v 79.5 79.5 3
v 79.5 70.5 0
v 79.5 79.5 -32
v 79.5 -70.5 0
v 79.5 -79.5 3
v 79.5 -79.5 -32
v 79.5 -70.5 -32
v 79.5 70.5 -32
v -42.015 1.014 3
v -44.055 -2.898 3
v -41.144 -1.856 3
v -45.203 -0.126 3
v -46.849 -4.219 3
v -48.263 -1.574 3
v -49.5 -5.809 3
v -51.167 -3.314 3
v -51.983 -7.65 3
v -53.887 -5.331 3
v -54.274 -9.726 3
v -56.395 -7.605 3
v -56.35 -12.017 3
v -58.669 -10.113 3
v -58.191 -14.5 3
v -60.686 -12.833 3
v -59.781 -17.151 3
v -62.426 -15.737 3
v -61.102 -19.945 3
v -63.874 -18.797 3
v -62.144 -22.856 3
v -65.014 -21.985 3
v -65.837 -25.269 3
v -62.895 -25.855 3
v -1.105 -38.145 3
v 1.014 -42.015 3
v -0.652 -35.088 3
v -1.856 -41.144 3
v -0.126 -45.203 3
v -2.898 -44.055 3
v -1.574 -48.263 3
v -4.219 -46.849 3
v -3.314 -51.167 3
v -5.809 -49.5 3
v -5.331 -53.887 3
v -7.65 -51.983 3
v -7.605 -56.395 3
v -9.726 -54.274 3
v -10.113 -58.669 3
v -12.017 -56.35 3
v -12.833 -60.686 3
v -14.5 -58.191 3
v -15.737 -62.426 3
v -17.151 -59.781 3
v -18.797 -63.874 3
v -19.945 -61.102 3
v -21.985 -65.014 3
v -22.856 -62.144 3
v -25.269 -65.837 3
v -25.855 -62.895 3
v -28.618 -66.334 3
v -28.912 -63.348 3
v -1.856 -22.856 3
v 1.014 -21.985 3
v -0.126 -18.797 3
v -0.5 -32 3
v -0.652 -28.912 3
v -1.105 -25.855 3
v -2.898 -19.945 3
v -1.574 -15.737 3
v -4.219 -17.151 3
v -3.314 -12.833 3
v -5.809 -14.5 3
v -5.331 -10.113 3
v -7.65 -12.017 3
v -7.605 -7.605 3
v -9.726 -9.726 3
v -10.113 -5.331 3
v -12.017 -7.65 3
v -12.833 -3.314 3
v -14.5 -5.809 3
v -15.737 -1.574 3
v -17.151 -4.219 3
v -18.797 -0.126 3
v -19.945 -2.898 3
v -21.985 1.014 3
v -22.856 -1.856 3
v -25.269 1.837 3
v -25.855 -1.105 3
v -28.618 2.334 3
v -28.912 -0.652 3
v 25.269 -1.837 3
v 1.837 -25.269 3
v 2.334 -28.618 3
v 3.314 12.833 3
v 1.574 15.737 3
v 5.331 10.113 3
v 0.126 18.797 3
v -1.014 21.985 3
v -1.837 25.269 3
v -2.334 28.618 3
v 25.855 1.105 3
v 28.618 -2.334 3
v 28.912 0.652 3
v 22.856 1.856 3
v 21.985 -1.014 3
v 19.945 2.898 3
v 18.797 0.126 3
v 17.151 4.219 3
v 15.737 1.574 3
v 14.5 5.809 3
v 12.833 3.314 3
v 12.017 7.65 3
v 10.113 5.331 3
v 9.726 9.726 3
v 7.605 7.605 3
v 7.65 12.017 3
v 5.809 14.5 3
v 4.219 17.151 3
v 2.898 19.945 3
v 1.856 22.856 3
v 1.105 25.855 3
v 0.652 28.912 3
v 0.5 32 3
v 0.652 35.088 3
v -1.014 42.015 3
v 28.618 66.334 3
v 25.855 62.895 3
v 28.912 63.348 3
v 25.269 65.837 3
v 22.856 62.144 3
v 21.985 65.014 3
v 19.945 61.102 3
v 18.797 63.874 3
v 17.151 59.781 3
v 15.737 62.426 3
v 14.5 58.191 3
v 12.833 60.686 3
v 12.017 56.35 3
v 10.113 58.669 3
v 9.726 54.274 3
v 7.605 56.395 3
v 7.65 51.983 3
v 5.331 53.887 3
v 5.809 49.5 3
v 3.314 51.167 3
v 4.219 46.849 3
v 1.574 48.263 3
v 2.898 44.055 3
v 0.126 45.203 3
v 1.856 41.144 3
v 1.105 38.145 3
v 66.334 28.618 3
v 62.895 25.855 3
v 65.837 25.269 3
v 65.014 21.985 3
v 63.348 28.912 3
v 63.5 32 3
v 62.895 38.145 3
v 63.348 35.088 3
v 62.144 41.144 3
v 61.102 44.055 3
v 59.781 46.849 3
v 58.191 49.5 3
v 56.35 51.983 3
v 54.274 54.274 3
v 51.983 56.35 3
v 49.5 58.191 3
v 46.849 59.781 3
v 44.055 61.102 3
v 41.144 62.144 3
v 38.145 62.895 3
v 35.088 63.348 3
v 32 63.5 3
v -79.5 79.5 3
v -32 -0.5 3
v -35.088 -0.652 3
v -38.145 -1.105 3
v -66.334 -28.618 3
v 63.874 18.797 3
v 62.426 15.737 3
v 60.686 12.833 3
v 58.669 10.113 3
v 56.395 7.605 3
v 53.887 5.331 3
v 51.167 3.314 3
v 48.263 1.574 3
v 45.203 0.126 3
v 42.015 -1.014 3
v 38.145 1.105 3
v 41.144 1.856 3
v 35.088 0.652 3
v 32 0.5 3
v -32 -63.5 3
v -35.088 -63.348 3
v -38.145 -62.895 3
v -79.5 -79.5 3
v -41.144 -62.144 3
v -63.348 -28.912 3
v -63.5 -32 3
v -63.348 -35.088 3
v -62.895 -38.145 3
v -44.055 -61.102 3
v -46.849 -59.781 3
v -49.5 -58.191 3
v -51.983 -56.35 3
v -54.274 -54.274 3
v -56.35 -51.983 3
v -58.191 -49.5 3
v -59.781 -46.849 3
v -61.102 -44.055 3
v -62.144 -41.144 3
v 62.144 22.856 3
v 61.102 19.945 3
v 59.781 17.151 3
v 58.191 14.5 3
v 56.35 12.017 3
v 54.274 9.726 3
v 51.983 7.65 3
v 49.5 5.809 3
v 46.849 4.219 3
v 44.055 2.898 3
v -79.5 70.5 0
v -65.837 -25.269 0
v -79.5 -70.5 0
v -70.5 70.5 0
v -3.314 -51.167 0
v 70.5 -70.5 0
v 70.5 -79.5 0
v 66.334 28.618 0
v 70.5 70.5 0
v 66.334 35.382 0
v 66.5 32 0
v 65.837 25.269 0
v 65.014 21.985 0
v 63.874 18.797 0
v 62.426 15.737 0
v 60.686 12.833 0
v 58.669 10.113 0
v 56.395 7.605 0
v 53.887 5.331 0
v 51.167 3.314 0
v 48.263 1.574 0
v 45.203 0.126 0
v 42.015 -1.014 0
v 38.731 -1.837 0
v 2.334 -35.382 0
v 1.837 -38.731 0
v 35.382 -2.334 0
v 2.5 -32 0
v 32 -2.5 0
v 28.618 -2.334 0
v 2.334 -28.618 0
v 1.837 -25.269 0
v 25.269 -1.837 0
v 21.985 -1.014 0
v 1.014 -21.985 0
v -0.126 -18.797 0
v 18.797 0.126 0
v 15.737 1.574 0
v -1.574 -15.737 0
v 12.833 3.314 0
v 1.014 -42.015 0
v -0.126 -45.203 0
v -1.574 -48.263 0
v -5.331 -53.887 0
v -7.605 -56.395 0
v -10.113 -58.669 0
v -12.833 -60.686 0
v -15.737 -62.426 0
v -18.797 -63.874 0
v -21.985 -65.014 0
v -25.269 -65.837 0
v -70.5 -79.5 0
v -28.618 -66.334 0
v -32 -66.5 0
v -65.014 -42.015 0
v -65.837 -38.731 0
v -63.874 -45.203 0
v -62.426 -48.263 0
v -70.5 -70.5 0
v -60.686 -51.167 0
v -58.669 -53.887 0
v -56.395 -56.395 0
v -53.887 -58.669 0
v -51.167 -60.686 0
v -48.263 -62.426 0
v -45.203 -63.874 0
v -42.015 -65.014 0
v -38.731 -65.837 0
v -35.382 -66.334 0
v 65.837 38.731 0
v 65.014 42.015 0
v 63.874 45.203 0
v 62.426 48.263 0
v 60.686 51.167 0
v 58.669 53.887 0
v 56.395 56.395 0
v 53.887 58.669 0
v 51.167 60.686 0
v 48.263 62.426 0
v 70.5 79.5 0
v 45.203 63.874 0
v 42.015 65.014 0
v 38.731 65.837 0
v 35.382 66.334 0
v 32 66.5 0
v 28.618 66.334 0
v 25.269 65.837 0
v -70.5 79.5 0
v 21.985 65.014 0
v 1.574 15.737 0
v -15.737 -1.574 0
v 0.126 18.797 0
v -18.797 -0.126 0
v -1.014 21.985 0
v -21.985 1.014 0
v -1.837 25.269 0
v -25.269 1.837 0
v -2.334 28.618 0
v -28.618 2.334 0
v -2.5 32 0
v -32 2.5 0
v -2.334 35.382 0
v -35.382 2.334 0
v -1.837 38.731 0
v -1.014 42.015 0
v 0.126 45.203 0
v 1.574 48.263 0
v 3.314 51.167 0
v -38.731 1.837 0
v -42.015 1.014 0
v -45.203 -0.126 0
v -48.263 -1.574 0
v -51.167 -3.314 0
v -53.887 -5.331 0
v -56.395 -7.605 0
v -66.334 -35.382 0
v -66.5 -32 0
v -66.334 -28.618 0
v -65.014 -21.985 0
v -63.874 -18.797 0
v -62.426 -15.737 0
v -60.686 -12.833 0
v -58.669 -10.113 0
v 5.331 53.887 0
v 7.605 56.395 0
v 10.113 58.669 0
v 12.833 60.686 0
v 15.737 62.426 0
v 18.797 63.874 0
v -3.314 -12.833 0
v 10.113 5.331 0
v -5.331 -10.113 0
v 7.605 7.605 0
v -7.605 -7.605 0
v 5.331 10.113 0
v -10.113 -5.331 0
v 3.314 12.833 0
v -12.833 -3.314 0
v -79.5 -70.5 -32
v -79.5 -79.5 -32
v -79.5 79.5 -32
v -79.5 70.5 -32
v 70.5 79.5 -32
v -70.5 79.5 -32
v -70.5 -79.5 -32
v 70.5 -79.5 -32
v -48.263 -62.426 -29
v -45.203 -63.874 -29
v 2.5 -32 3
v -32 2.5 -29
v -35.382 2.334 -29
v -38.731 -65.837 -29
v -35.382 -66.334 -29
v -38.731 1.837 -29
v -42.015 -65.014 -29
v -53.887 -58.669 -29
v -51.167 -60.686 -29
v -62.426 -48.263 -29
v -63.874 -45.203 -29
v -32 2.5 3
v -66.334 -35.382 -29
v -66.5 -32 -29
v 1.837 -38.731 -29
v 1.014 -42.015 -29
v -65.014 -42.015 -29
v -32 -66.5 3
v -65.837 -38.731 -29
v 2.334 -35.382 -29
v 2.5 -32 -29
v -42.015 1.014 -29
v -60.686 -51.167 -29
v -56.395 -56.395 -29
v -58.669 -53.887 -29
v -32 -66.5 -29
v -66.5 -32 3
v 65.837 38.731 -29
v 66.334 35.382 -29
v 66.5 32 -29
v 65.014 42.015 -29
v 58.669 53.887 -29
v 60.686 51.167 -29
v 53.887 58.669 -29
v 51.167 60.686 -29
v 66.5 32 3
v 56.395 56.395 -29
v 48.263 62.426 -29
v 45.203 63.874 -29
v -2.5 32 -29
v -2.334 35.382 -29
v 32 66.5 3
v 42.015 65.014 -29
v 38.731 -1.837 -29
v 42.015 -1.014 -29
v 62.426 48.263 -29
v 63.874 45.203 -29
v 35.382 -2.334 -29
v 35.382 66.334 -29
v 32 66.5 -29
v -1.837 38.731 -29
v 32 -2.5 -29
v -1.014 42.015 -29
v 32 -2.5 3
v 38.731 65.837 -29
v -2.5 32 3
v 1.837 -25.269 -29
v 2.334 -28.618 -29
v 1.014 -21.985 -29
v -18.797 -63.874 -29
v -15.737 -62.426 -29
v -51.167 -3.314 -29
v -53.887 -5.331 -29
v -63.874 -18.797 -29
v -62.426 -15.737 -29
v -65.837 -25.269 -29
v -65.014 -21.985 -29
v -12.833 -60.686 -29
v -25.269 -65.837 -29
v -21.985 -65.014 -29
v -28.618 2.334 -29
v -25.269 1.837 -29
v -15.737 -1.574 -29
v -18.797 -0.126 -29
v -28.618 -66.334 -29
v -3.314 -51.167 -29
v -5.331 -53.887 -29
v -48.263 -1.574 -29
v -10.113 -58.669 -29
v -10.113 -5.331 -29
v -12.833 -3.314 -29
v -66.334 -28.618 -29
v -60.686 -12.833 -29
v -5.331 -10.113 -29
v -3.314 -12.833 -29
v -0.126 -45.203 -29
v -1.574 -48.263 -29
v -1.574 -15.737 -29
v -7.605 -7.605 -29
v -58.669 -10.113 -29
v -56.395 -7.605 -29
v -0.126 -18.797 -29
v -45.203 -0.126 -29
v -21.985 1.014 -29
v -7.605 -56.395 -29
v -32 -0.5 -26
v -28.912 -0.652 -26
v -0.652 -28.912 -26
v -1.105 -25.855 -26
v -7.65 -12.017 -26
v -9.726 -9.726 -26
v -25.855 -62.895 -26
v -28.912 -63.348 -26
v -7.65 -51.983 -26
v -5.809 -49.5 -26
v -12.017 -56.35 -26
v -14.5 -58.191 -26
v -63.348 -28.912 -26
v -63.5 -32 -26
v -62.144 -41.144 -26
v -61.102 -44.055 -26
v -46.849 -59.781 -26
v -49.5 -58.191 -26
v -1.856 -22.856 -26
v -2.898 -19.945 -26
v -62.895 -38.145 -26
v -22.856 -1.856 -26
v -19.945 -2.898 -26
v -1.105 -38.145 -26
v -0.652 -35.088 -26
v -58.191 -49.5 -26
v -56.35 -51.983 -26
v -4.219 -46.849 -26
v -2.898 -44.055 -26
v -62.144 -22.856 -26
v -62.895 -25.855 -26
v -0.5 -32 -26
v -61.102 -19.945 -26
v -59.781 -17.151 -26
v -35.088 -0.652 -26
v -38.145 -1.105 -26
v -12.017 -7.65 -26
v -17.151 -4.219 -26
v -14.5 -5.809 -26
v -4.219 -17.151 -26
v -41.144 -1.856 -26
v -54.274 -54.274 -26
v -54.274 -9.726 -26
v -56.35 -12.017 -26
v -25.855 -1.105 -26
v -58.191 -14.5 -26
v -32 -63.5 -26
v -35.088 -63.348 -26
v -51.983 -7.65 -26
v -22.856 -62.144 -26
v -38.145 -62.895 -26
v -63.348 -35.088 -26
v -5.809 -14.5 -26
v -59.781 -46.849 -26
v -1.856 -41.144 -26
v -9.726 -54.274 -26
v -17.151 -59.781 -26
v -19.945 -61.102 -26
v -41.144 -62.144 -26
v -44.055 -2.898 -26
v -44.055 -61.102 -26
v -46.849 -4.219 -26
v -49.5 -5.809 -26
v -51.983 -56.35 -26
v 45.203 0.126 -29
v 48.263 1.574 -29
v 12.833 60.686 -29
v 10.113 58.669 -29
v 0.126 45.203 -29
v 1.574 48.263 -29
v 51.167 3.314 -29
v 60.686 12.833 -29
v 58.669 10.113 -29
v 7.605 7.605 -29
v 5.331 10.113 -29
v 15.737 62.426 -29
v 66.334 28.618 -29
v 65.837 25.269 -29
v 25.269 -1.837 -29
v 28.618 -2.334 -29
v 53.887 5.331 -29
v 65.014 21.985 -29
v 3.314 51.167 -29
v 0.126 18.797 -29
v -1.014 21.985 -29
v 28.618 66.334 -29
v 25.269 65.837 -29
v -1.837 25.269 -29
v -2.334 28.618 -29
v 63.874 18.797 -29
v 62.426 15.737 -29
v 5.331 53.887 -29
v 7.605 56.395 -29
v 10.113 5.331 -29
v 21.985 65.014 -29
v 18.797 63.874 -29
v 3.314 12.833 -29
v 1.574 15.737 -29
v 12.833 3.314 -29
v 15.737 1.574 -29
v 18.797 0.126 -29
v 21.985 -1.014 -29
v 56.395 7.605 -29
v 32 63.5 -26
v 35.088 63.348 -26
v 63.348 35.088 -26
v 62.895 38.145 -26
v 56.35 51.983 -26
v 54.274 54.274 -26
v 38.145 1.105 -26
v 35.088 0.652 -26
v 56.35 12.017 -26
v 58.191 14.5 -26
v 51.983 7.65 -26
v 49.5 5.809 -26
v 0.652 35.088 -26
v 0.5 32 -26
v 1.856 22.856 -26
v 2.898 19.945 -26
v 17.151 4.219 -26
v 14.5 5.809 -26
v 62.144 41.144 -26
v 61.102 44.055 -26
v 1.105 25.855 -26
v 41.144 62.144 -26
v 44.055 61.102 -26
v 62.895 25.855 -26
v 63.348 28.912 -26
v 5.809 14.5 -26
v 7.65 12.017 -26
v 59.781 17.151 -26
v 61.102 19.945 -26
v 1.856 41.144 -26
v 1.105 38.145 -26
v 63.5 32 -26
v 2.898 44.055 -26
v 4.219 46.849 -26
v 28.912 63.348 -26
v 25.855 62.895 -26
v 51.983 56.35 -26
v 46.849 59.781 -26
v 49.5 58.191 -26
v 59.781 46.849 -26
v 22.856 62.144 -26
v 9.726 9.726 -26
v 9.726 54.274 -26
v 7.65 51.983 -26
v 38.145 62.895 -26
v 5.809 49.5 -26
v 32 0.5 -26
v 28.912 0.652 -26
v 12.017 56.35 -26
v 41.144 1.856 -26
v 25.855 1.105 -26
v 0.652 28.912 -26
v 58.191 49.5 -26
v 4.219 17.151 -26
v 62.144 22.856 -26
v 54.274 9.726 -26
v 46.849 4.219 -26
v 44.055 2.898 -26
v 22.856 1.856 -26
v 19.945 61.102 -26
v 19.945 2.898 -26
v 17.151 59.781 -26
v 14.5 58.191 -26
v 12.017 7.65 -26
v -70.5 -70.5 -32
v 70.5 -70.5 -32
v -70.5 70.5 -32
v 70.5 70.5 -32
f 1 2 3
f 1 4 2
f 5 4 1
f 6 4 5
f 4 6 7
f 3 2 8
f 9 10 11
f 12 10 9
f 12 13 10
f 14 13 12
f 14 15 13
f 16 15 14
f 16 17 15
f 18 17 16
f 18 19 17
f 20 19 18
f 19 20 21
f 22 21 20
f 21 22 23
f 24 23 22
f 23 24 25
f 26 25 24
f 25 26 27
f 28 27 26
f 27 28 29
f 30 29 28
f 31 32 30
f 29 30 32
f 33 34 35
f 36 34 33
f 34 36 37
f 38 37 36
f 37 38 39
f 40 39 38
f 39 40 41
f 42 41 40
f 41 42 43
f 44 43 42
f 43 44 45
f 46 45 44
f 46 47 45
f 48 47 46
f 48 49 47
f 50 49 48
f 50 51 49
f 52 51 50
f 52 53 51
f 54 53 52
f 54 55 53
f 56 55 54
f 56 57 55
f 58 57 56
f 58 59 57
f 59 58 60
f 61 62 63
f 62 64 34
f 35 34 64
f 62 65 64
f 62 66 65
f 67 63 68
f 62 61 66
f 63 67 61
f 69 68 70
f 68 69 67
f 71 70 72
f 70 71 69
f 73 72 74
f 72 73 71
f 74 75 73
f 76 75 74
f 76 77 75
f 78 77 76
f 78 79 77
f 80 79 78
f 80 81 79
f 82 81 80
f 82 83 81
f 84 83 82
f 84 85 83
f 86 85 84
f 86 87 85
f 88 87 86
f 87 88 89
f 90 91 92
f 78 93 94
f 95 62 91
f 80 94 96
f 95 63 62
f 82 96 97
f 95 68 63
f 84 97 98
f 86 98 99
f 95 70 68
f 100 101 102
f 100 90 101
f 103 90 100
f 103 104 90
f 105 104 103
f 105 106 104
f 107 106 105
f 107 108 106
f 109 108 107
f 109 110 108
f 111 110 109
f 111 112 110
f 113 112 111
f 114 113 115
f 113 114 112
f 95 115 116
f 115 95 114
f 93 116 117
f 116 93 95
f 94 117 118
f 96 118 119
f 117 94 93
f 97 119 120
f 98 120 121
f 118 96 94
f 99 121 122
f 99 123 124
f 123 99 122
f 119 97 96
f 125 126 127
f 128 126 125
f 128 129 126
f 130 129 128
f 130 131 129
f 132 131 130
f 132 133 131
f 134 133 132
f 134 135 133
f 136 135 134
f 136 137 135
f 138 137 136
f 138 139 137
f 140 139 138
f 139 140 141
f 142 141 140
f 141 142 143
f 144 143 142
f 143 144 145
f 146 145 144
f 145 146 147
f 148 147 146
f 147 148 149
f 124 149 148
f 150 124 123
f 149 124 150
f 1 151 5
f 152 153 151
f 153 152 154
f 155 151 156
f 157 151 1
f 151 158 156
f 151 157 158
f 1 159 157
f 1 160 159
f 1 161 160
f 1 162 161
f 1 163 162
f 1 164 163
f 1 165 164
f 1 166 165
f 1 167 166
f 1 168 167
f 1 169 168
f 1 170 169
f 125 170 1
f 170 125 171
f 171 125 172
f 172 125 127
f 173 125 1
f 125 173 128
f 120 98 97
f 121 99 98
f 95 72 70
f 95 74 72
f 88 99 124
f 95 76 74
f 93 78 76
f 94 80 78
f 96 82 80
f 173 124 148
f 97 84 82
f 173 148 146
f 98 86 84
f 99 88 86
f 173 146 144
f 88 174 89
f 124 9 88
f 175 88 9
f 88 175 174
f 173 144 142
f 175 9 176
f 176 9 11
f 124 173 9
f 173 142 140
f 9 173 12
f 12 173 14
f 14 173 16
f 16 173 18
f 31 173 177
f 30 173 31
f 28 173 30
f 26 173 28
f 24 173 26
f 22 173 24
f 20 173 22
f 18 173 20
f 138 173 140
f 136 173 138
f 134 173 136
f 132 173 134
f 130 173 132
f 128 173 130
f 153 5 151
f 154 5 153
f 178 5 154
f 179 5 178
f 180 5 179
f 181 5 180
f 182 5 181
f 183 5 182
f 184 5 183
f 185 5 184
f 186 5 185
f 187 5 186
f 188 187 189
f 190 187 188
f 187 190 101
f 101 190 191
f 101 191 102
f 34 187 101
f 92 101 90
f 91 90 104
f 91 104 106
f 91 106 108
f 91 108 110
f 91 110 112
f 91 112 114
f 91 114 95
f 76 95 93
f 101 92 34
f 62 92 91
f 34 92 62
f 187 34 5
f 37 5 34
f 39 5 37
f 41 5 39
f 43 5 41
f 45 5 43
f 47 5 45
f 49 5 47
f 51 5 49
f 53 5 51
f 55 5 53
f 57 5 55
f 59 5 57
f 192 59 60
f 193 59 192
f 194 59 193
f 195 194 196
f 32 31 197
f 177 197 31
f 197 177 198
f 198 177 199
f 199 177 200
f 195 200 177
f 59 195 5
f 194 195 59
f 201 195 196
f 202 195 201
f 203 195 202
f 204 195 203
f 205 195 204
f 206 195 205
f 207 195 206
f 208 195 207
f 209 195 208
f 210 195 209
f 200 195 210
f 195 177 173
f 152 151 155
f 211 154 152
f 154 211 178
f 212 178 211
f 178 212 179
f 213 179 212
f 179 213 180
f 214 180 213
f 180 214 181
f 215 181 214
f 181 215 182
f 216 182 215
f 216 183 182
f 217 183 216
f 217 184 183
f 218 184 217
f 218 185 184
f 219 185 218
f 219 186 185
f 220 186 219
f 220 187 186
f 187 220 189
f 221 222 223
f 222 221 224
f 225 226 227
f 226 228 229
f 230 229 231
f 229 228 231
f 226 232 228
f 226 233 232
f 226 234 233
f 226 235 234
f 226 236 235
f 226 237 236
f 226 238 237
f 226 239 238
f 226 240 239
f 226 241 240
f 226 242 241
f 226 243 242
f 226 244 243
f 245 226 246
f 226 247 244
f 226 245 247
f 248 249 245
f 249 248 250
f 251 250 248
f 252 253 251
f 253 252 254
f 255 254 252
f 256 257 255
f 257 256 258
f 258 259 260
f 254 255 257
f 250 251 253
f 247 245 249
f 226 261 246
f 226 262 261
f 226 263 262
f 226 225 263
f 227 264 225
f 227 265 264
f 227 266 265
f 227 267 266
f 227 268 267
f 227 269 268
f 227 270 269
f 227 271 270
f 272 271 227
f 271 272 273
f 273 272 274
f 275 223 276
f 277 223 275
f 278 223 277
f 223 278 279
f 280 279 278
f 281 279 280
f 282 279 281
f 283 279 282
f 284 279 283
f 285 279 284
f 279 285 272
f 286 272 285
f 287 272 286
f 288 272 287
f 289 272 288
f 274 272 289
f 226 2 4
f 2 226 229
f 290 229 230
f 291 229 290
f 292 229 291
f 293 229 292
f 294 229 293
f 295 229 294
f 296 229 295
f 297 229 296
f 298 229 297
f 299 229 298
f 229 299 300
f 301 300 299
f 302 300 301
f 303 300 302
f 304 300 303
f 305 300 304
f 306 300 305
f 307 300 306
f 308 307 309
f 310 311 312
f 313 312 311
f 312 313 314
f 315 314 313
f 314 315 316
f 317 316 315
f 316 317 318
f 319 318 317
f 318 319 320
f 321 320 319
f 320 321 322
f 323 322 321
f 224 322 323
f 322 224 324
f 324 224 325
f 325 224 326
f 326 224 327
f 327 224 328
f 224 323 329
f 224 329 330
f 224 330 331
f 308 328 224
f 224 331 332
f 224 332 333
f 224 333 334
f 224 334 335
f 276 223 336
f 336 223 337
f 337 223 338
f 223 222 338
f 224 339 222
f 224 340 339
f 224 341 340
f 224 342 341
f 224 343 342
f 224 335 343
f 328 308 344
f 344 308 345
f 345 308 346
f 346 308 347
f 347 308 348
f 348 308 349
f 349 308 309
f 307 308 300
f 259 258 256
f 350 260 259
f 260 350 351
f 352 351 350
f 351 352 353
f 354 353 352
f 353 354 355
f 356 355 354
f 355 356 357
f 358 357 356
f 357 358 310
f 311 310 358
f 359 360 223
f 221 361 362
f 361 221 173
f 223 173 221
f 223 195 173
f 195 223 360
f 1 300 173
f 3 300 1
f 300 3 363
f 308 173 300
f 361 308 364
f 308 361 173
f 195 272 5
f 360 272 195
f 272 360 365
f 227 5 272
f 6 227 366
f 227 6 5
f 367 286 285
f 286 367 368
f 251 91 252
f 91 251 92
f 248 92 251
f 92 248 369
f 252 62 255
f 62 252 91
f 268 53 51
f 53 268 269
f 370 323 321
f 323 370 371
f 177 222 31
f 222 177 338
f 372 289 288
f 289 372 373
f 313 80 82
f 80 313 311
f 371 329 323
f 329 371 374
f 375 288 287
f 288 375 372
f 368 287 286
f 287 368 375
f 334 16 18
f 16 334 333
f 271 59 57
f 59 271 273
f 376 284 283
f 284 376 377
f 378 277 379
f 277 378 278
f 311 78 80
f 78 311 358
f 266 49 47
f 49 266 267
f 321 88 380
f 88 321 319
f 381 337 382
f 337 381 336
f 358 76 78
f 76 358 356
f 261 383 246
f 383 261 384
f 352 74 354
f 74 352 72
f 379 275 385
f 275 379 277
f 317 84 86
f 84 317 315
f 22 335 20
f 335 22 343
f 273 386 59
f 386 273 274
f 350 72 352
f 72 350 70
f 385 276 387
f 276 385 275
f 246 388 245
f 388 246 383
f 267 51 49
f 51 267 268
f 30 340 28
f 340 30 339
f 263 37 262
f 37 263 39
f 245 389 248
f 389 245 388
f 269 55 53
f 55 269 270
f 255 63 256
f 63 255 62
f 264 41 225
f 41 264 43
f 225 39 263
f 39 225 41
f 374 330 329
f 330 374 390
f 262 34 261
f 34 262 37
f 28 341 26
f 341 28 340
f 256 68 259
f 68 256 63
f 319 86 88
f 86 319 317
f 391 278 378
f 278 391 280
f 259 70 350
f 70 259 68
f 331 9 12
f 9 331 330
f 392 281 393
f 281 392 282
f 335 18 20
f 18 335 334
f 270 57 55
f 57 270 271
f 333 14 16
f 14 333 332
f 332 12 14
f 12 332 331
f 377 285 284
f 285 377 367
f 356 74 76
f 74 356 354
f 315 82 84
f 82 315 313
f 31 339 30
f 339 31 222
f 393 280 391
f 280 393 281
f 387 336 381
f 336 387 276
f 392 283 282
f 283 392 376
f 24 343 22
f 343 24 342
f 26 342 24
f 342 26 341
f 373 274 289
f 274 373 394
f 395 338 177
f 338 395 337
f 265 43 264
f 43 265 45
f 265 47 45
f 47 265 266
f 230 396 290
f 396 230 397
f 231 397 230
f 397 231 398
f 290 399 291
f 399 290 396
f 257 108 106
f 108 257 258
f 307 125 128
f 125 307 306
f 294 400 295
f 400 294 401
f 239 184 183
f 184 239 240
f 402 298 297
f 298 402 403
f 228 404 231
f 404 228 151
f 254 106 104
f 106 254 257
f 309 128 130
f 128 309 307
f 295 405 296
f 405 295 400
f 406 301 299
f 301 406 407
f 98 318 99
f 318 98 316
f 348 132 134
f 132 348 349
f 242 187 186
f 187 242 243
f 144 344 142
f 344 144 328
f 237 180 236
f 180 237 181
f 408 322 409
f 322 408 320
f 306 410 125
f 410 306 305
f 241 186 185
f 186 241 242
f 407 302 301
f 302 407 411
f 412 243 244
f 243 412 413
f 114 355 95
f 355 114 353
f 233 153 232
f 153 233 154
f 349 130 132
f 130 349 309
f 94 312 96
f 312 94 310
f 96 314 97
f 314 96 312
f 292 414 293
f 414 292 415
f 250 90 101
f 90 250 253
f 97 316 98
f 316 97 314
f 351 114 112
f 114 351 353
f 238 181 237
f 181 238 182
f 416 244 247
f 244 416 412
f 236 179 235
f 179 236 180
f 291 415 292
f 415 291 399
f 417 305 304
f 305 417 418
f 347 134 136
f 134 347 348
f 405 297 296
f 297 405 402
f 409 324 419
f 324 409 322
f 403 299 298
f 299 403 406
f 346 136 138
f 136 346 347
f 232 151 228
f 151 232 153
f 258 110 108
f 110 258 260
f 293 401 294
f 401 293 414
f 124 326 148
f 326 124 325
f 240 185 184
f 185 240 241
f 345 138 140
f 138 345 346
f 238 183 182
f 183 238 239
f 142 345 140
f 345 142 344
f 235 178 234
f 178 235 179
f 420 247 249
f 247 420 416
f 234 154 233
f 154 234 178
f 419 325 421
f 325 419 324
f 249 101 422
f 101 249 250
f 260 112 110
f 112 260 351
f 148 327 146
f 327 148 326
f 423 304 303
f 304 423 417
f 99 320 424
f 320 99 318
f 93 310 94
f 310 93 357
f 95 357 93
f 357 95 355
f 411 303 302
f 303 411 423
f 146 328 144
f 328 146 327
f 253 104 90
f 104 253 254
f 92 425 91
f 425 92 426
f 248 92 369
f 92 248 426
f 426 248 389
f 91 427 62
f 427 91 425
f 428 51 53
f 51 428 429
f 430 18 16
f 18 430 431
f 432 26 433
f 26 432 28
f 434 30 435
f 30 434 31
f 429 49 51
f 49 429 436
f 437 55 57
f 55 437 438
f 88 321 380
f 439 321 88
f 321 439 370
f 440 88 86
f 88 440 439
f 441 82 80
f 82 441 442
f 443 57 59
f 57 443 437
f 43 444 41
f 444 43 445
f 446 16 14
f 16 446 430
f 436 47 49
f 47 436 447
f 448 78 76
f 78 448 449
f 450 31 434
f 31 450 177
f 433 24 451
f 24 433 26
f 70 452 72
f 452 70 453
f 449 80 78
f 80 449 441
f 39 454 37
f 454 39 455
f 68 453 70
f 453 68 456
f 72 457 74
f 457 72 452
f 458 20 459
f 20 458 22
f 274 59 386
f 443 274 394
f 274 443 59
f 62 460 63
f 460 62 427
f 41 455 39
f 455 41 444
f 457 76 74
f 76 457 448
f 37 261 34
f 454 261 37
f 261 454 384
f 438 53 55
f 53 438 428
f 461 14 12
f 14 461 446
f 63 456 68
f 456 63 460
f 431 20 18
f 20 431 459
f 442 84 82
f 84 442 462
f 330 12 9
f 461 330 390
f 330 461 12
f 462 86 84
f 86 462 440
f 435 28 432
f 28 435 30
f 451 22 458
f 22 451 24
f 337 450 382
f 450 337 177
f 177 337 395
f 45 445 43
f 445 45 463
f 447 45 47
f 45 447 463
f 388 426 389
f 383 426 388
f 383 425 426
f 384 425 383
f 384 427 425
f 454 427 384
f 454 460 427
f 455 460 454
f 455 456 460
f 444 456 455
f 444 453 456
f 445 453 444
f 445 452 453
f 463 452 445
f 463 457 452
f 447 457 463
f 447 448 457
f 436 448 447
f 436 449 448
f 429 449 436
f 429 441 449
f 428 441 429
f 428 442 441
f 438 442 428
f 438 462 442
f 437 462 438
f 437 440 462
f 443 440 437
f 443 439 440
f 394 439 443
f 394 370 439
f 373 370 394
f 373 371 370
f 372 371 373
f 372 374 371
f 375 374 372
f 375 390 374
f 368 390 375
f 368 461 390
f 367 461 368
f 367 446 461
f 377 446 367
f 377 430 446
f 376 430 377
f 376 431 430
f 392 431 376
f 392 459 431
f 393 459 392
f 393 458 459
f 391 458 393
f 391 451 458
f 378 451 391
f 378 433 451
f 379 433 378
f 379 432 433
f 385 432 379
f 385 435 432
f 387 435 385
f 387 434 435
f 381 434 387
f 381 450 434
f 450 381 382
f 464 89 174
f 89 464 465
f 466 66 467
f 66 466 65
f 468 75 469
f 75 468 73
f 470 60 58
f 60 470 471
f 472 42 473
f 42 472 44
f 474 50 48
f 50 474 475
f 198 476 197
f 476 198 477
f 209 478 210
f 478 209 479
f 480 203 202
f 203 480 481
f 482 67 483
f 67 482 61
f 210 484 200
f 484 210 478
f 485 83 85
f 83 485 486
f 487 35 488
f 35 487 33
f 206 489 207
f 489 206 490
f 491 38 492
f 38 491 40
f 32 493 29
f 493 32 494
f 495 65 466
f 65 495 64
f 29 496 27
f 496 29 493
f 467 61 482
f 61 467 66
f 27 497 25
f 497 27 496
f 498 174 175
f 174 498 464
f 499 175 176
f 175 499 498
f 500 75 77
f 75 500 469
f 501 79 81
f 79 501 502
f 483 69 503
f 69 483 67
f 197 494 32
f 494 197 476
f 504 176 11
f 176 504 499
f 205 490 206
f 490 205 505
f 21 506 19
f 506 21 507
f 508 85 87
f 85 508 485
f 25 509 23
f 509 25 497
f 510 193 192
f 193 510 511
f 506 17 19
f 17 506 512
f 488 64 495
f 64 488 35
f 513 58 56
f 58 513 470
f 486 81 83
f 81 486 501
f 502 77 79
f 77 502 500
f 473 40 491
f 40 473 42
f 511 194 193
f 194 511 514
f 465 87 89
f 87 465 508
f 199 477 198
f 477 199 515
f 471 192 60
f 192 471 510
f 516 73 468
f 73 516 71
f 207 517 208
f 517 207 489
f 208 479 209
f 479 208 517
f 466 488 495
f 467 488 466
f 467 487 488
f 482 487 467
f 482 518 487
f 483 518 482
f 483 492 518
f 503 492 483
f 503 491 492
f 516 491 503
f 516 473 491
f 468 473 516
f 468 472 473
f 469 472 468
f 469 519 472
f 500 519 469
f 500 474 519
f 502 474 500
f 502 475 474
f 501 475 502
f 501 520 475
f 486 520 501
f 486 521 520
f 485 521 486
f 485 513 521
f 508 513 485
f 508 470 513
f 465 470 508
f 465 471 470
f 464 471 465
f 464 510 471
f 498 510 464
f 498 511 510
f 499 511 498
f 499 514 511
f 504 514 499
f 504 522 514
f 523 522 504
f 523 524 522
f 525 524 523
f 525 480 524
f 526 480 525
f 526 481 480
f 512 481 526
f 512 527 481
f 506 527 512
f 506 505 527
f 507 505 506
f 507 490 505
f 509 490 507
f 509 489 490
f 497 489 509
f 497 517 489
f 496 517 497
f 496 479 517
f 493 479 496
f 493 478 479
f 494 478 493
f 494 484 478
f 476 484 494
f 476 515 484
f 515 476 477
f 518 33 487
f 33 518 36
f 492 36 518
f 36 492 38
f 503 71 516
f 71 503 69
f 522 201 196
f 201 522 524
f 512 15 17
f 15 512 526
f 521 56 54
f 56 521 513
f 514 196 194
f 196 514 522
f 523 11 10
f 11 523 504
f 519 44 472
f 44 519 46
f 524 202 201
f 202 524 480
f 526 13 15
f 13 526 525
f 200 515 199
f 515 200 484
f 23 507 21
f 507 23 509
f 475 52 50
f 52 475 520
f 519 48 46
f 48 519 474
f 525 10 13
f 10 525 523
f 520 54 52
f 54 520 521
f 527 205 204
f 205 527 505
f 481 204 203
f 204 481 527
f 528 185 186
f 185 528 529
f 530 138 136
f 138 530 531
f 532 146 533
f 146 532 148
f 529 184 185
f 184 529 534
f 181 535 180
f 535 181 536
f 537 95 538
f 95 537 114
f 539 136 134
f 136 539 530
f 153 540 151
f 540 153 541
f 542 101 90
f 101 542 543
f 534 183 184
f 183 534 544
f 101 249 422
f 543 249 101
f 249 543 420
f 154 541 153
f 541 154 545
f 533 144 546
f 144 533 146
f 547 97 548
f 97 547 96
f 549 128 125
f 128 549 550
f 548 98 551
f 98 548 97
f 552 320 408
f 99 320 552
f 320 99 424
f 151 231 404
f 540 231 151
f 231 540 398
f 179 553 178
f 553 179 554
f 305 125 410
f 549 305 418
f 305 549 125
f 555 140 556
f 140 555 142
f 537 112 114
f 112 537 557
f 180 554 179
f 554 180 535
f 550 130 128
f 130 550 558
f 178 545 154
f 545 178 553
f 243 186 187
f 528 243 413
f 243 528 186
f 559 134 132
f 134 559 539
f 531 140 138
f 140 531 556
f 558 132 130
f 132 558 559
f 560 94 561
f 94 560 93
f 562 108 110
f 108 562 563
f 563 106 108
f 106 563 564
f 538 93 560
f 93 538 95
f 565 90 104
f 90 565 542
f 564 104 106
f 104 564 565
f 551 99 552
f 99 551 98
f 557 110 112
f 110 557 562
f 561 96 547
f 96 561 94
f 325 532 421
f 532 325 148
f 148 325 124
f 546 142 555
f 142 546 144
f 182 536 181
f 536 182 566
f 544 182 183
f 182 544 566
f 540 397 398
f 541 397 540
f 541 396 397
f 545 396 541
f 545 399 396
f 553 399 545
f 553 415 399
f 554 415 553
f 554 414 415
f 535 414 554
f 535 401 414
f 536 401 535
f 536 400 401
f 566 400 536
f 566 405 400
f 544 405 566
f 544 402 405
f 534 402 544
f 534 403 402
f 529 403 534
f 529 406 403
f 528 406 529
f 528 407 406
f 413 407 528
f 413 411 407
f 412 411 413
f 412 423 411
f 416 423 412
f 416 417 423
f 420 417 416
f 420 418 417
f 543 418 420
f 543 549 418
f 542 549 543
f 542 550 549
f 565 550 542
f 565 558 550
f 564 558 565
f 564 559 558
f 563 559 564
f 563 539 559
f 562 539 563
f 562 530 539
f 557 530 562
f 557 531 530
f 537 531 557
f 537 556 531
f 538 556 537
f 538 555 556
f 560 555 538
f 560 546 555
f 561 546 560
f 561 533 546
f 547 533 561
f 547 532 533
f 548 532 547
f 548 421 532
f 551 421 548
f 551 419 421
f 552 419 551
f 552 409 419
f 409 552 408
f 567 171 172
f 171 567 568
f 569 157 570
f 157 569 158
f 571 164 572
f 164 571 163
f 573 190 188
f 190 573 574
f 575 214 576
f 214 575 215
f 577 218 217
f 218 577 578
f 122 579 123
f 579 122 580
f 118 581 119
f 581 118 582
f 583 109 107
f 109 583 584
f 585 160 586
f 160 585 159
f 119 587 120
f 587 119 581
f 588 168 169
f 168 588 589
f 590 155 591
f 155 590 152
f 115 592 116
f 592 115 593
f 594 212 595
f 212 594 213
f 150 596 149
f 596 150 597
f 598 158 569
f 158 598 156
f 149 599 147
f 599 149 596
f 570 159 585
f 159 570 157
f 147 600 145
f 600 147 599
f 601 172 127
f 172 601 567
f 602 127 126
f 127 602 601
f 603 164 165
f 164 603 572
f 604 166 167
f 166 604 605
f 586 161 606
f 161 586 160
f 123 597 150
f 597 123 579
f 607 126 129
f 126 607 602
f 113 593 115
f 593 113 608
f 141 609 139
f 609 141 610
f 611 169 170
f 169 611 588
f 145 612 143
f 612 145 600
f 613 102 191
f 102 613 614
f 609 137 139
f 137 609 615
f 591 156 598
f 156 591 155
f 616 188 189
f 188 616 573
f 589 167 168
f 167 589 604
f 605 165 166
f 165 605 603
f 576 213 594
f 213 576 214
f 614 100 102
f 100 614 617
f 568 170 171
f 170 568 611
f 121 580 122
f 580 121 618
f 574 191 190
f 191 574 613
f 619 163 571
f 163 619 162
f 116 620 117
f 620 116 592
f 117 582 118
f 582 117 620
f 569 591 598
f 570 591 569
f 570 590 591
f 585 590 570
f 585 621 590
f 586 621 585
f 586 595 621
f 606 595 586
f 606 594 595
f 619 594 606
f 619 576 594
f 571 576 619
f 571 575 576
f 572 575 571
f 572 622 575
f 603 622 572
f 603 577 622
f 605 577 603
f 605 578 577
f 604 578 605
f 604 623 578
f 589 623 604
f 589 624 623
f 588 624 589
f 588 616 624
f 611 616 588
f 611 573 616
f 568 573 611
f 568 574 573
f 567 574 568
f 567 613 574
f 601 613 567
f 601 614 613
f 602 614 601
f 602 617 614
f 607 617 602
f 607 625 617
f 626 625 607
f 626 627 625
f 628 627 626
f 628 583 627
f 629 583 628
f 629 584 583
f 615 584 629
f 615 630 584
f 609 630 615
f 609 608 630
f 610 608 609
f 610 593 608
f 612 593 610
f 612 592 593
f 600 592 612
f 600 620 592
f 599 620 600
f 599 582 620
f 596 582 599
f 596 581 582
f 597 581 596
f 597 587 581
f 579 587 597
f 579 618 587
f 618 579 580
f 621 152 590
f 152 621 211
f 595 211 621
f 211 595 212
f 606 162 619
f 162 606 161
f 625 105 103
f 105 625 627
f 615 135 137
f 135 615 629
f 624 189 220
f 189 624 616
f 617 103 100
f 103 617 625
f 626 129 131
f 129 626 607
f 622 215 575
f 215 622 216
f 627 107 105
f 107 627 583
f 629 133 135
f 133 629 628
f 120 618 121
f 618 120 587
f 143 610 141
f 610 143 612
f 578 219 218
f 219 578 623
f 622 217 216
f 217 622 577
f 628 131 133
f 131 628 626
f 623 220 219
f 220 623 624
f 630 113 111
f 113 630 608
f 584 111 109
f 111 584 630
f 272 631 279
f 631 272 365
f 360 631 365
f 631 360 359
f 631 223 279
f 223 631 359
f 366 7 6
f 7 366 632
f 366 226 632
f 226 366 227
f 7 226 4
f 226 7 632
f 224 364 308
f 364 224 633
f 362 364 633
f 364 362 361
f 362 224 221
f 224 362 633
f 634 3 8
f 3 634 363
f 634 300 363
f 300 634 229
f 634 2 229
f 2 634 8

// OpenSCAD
// ============================================================
// Parametrische Lochplatte mit Eckstützen und Zylindern
// ============================================================
// Aufbau:
//   z = +platten_dicke  → Oberkante Platte = Öffnung Zylinder
//   z =  0              → Unterkante Platte
//   z = -stuetzen_hoehe → Unterkante Stützen
// ============================================================

// --- Parameter (anpassbar) ---
laenge          =  159; // Länge der Grundplatte in mm
breite          =  159;   // Breite der Grundplatte in mm
stuetzen_hoehe  =   32;   // Höhe der Eckstützen in mm
bohrung_dm      =   63;   // Innendurchmesser der Zylinder in mm
zylinder_tiefe  =   32;   // Tiefe der Zylinder in mm (max = stuetzen_hoehe!)
mit_stuetzen    = true;  // true = Stützen an / false = Stützen aus

// --- Konstanten ---
platten_dicke   =  3;    // Dicke der Grundplatte in mm
stuetzen_breite =  9;    // Querschnitt der quadratischen Stützen in mm
randabstand     =  16;   // Mindestabstand Bohrungsrand → Plattenrand in mm
wandstaerke     =  3;    // Wandstärke der Zylinder in mm

// --- Kreisauflösung ---
$fn = 64;

// --- Sicherheit: Zylinder nie tiefer als Stützen ---
eff_tiefe = min(zylinder_tiefe, stuetzen_hoehe);

// ============================================================
// Berechnete Hilfswerte
//
//   rand_mitte = randabstand + bohrung_dm/2
//   → Abstand Bohrungsmitte zum Plattenrand
//
//   Diagonale Platzierung:
//   Bohrung 1: vorne-links  (-x, -y)
//   Bohrung 2: hinten-rechts (+x, +y)
// ============================================================
rand_mitte = randabstand + bohrung_dm / 2;
pos_x      = laenge/2 - rand_mitte;   // X-Abstand vom Zentrum
pos_y      = breite/2 - rand_mitte;   // Y-Abstand vom Zentrum
aussen_dm  = bohrung_dm + 2 * wandstaerke;

// ============================================================
// Modul: Grundplatte mit 2 diagonalen Ausschnitten
// ============================================================
module grundplatte() {
    difference() {
        translate([-laenge/2, -breite/2, 0])
            cube([laenge, breite, platten_dicke]);

        // Bohrung 1 – vorne links
        translate([-pos_x, -pos_y, -0.1])
            cylinder(h = platten_dicke + 0.2, d = aussen_dm);

        // Bohrung 2 – hinten rechts
        translate([+pos_x, +pos_y, -0.1])
            cylinder(h = platten_dicke + 0.2, d = aussen_dm);
    }
}

// ============================================================
// Modul: Ein einzelner Zylinder (hängt unter der Platte)
// ============================================================
module zylinder_einzel(px, py) {
    translate([px, py, platten_dicke - eff_tiefe])
        difference() {
            cylinder(h = eff_tiefe, d = aussen_dm);
            translate([0, 0, wandstaerke])
                cylinder(h = eff_tiefe, d = bohrung_dm);
        }
}

// ============================================================
// Modul: Beide Zylinder diagonal
// ============================================================
module zylinder_diagonal() {
    zylinder_einzel(-pos_x, -pos_y);  // vorne links
    zylinder_einzel(+pos_x, +pos_y);  // hinten rechts
}

// ============================================================
// Modul: Eine einzelne Eckstütze
// ============================================================
module stuetze() {
    cube([stuetzen_breite, stuetzen_breite, stuetzen_hoehe]);
}

// ============================================================
// Modul: Alle vier Eckstützen unter der Grundplatte
// ============================================================
module eckstuetzen() {
    x = laenge/2 - stuetzen_breite;
    y = breite/2  - stuetzen_breite;

    translate([-laenge/2, -breite/2, -stuetzen_hoehe]) stuetze();
    translate([ x,        -breite/2, -stuetzen_hoehe]) stuetze();
    translate([-laenge/2,  y,        -stuetzen_hoehe]) stuetze();
    translate([ x,         y,        -stuetzen_hoehe]) stuetze();
}

// ============================================================
// Zusammenbau
// ============================================================
union() {
    grundplatte();
    zylinder_diagonal();
    if (mit_stuetzen) {
        eckstuetzen();
    }
}
